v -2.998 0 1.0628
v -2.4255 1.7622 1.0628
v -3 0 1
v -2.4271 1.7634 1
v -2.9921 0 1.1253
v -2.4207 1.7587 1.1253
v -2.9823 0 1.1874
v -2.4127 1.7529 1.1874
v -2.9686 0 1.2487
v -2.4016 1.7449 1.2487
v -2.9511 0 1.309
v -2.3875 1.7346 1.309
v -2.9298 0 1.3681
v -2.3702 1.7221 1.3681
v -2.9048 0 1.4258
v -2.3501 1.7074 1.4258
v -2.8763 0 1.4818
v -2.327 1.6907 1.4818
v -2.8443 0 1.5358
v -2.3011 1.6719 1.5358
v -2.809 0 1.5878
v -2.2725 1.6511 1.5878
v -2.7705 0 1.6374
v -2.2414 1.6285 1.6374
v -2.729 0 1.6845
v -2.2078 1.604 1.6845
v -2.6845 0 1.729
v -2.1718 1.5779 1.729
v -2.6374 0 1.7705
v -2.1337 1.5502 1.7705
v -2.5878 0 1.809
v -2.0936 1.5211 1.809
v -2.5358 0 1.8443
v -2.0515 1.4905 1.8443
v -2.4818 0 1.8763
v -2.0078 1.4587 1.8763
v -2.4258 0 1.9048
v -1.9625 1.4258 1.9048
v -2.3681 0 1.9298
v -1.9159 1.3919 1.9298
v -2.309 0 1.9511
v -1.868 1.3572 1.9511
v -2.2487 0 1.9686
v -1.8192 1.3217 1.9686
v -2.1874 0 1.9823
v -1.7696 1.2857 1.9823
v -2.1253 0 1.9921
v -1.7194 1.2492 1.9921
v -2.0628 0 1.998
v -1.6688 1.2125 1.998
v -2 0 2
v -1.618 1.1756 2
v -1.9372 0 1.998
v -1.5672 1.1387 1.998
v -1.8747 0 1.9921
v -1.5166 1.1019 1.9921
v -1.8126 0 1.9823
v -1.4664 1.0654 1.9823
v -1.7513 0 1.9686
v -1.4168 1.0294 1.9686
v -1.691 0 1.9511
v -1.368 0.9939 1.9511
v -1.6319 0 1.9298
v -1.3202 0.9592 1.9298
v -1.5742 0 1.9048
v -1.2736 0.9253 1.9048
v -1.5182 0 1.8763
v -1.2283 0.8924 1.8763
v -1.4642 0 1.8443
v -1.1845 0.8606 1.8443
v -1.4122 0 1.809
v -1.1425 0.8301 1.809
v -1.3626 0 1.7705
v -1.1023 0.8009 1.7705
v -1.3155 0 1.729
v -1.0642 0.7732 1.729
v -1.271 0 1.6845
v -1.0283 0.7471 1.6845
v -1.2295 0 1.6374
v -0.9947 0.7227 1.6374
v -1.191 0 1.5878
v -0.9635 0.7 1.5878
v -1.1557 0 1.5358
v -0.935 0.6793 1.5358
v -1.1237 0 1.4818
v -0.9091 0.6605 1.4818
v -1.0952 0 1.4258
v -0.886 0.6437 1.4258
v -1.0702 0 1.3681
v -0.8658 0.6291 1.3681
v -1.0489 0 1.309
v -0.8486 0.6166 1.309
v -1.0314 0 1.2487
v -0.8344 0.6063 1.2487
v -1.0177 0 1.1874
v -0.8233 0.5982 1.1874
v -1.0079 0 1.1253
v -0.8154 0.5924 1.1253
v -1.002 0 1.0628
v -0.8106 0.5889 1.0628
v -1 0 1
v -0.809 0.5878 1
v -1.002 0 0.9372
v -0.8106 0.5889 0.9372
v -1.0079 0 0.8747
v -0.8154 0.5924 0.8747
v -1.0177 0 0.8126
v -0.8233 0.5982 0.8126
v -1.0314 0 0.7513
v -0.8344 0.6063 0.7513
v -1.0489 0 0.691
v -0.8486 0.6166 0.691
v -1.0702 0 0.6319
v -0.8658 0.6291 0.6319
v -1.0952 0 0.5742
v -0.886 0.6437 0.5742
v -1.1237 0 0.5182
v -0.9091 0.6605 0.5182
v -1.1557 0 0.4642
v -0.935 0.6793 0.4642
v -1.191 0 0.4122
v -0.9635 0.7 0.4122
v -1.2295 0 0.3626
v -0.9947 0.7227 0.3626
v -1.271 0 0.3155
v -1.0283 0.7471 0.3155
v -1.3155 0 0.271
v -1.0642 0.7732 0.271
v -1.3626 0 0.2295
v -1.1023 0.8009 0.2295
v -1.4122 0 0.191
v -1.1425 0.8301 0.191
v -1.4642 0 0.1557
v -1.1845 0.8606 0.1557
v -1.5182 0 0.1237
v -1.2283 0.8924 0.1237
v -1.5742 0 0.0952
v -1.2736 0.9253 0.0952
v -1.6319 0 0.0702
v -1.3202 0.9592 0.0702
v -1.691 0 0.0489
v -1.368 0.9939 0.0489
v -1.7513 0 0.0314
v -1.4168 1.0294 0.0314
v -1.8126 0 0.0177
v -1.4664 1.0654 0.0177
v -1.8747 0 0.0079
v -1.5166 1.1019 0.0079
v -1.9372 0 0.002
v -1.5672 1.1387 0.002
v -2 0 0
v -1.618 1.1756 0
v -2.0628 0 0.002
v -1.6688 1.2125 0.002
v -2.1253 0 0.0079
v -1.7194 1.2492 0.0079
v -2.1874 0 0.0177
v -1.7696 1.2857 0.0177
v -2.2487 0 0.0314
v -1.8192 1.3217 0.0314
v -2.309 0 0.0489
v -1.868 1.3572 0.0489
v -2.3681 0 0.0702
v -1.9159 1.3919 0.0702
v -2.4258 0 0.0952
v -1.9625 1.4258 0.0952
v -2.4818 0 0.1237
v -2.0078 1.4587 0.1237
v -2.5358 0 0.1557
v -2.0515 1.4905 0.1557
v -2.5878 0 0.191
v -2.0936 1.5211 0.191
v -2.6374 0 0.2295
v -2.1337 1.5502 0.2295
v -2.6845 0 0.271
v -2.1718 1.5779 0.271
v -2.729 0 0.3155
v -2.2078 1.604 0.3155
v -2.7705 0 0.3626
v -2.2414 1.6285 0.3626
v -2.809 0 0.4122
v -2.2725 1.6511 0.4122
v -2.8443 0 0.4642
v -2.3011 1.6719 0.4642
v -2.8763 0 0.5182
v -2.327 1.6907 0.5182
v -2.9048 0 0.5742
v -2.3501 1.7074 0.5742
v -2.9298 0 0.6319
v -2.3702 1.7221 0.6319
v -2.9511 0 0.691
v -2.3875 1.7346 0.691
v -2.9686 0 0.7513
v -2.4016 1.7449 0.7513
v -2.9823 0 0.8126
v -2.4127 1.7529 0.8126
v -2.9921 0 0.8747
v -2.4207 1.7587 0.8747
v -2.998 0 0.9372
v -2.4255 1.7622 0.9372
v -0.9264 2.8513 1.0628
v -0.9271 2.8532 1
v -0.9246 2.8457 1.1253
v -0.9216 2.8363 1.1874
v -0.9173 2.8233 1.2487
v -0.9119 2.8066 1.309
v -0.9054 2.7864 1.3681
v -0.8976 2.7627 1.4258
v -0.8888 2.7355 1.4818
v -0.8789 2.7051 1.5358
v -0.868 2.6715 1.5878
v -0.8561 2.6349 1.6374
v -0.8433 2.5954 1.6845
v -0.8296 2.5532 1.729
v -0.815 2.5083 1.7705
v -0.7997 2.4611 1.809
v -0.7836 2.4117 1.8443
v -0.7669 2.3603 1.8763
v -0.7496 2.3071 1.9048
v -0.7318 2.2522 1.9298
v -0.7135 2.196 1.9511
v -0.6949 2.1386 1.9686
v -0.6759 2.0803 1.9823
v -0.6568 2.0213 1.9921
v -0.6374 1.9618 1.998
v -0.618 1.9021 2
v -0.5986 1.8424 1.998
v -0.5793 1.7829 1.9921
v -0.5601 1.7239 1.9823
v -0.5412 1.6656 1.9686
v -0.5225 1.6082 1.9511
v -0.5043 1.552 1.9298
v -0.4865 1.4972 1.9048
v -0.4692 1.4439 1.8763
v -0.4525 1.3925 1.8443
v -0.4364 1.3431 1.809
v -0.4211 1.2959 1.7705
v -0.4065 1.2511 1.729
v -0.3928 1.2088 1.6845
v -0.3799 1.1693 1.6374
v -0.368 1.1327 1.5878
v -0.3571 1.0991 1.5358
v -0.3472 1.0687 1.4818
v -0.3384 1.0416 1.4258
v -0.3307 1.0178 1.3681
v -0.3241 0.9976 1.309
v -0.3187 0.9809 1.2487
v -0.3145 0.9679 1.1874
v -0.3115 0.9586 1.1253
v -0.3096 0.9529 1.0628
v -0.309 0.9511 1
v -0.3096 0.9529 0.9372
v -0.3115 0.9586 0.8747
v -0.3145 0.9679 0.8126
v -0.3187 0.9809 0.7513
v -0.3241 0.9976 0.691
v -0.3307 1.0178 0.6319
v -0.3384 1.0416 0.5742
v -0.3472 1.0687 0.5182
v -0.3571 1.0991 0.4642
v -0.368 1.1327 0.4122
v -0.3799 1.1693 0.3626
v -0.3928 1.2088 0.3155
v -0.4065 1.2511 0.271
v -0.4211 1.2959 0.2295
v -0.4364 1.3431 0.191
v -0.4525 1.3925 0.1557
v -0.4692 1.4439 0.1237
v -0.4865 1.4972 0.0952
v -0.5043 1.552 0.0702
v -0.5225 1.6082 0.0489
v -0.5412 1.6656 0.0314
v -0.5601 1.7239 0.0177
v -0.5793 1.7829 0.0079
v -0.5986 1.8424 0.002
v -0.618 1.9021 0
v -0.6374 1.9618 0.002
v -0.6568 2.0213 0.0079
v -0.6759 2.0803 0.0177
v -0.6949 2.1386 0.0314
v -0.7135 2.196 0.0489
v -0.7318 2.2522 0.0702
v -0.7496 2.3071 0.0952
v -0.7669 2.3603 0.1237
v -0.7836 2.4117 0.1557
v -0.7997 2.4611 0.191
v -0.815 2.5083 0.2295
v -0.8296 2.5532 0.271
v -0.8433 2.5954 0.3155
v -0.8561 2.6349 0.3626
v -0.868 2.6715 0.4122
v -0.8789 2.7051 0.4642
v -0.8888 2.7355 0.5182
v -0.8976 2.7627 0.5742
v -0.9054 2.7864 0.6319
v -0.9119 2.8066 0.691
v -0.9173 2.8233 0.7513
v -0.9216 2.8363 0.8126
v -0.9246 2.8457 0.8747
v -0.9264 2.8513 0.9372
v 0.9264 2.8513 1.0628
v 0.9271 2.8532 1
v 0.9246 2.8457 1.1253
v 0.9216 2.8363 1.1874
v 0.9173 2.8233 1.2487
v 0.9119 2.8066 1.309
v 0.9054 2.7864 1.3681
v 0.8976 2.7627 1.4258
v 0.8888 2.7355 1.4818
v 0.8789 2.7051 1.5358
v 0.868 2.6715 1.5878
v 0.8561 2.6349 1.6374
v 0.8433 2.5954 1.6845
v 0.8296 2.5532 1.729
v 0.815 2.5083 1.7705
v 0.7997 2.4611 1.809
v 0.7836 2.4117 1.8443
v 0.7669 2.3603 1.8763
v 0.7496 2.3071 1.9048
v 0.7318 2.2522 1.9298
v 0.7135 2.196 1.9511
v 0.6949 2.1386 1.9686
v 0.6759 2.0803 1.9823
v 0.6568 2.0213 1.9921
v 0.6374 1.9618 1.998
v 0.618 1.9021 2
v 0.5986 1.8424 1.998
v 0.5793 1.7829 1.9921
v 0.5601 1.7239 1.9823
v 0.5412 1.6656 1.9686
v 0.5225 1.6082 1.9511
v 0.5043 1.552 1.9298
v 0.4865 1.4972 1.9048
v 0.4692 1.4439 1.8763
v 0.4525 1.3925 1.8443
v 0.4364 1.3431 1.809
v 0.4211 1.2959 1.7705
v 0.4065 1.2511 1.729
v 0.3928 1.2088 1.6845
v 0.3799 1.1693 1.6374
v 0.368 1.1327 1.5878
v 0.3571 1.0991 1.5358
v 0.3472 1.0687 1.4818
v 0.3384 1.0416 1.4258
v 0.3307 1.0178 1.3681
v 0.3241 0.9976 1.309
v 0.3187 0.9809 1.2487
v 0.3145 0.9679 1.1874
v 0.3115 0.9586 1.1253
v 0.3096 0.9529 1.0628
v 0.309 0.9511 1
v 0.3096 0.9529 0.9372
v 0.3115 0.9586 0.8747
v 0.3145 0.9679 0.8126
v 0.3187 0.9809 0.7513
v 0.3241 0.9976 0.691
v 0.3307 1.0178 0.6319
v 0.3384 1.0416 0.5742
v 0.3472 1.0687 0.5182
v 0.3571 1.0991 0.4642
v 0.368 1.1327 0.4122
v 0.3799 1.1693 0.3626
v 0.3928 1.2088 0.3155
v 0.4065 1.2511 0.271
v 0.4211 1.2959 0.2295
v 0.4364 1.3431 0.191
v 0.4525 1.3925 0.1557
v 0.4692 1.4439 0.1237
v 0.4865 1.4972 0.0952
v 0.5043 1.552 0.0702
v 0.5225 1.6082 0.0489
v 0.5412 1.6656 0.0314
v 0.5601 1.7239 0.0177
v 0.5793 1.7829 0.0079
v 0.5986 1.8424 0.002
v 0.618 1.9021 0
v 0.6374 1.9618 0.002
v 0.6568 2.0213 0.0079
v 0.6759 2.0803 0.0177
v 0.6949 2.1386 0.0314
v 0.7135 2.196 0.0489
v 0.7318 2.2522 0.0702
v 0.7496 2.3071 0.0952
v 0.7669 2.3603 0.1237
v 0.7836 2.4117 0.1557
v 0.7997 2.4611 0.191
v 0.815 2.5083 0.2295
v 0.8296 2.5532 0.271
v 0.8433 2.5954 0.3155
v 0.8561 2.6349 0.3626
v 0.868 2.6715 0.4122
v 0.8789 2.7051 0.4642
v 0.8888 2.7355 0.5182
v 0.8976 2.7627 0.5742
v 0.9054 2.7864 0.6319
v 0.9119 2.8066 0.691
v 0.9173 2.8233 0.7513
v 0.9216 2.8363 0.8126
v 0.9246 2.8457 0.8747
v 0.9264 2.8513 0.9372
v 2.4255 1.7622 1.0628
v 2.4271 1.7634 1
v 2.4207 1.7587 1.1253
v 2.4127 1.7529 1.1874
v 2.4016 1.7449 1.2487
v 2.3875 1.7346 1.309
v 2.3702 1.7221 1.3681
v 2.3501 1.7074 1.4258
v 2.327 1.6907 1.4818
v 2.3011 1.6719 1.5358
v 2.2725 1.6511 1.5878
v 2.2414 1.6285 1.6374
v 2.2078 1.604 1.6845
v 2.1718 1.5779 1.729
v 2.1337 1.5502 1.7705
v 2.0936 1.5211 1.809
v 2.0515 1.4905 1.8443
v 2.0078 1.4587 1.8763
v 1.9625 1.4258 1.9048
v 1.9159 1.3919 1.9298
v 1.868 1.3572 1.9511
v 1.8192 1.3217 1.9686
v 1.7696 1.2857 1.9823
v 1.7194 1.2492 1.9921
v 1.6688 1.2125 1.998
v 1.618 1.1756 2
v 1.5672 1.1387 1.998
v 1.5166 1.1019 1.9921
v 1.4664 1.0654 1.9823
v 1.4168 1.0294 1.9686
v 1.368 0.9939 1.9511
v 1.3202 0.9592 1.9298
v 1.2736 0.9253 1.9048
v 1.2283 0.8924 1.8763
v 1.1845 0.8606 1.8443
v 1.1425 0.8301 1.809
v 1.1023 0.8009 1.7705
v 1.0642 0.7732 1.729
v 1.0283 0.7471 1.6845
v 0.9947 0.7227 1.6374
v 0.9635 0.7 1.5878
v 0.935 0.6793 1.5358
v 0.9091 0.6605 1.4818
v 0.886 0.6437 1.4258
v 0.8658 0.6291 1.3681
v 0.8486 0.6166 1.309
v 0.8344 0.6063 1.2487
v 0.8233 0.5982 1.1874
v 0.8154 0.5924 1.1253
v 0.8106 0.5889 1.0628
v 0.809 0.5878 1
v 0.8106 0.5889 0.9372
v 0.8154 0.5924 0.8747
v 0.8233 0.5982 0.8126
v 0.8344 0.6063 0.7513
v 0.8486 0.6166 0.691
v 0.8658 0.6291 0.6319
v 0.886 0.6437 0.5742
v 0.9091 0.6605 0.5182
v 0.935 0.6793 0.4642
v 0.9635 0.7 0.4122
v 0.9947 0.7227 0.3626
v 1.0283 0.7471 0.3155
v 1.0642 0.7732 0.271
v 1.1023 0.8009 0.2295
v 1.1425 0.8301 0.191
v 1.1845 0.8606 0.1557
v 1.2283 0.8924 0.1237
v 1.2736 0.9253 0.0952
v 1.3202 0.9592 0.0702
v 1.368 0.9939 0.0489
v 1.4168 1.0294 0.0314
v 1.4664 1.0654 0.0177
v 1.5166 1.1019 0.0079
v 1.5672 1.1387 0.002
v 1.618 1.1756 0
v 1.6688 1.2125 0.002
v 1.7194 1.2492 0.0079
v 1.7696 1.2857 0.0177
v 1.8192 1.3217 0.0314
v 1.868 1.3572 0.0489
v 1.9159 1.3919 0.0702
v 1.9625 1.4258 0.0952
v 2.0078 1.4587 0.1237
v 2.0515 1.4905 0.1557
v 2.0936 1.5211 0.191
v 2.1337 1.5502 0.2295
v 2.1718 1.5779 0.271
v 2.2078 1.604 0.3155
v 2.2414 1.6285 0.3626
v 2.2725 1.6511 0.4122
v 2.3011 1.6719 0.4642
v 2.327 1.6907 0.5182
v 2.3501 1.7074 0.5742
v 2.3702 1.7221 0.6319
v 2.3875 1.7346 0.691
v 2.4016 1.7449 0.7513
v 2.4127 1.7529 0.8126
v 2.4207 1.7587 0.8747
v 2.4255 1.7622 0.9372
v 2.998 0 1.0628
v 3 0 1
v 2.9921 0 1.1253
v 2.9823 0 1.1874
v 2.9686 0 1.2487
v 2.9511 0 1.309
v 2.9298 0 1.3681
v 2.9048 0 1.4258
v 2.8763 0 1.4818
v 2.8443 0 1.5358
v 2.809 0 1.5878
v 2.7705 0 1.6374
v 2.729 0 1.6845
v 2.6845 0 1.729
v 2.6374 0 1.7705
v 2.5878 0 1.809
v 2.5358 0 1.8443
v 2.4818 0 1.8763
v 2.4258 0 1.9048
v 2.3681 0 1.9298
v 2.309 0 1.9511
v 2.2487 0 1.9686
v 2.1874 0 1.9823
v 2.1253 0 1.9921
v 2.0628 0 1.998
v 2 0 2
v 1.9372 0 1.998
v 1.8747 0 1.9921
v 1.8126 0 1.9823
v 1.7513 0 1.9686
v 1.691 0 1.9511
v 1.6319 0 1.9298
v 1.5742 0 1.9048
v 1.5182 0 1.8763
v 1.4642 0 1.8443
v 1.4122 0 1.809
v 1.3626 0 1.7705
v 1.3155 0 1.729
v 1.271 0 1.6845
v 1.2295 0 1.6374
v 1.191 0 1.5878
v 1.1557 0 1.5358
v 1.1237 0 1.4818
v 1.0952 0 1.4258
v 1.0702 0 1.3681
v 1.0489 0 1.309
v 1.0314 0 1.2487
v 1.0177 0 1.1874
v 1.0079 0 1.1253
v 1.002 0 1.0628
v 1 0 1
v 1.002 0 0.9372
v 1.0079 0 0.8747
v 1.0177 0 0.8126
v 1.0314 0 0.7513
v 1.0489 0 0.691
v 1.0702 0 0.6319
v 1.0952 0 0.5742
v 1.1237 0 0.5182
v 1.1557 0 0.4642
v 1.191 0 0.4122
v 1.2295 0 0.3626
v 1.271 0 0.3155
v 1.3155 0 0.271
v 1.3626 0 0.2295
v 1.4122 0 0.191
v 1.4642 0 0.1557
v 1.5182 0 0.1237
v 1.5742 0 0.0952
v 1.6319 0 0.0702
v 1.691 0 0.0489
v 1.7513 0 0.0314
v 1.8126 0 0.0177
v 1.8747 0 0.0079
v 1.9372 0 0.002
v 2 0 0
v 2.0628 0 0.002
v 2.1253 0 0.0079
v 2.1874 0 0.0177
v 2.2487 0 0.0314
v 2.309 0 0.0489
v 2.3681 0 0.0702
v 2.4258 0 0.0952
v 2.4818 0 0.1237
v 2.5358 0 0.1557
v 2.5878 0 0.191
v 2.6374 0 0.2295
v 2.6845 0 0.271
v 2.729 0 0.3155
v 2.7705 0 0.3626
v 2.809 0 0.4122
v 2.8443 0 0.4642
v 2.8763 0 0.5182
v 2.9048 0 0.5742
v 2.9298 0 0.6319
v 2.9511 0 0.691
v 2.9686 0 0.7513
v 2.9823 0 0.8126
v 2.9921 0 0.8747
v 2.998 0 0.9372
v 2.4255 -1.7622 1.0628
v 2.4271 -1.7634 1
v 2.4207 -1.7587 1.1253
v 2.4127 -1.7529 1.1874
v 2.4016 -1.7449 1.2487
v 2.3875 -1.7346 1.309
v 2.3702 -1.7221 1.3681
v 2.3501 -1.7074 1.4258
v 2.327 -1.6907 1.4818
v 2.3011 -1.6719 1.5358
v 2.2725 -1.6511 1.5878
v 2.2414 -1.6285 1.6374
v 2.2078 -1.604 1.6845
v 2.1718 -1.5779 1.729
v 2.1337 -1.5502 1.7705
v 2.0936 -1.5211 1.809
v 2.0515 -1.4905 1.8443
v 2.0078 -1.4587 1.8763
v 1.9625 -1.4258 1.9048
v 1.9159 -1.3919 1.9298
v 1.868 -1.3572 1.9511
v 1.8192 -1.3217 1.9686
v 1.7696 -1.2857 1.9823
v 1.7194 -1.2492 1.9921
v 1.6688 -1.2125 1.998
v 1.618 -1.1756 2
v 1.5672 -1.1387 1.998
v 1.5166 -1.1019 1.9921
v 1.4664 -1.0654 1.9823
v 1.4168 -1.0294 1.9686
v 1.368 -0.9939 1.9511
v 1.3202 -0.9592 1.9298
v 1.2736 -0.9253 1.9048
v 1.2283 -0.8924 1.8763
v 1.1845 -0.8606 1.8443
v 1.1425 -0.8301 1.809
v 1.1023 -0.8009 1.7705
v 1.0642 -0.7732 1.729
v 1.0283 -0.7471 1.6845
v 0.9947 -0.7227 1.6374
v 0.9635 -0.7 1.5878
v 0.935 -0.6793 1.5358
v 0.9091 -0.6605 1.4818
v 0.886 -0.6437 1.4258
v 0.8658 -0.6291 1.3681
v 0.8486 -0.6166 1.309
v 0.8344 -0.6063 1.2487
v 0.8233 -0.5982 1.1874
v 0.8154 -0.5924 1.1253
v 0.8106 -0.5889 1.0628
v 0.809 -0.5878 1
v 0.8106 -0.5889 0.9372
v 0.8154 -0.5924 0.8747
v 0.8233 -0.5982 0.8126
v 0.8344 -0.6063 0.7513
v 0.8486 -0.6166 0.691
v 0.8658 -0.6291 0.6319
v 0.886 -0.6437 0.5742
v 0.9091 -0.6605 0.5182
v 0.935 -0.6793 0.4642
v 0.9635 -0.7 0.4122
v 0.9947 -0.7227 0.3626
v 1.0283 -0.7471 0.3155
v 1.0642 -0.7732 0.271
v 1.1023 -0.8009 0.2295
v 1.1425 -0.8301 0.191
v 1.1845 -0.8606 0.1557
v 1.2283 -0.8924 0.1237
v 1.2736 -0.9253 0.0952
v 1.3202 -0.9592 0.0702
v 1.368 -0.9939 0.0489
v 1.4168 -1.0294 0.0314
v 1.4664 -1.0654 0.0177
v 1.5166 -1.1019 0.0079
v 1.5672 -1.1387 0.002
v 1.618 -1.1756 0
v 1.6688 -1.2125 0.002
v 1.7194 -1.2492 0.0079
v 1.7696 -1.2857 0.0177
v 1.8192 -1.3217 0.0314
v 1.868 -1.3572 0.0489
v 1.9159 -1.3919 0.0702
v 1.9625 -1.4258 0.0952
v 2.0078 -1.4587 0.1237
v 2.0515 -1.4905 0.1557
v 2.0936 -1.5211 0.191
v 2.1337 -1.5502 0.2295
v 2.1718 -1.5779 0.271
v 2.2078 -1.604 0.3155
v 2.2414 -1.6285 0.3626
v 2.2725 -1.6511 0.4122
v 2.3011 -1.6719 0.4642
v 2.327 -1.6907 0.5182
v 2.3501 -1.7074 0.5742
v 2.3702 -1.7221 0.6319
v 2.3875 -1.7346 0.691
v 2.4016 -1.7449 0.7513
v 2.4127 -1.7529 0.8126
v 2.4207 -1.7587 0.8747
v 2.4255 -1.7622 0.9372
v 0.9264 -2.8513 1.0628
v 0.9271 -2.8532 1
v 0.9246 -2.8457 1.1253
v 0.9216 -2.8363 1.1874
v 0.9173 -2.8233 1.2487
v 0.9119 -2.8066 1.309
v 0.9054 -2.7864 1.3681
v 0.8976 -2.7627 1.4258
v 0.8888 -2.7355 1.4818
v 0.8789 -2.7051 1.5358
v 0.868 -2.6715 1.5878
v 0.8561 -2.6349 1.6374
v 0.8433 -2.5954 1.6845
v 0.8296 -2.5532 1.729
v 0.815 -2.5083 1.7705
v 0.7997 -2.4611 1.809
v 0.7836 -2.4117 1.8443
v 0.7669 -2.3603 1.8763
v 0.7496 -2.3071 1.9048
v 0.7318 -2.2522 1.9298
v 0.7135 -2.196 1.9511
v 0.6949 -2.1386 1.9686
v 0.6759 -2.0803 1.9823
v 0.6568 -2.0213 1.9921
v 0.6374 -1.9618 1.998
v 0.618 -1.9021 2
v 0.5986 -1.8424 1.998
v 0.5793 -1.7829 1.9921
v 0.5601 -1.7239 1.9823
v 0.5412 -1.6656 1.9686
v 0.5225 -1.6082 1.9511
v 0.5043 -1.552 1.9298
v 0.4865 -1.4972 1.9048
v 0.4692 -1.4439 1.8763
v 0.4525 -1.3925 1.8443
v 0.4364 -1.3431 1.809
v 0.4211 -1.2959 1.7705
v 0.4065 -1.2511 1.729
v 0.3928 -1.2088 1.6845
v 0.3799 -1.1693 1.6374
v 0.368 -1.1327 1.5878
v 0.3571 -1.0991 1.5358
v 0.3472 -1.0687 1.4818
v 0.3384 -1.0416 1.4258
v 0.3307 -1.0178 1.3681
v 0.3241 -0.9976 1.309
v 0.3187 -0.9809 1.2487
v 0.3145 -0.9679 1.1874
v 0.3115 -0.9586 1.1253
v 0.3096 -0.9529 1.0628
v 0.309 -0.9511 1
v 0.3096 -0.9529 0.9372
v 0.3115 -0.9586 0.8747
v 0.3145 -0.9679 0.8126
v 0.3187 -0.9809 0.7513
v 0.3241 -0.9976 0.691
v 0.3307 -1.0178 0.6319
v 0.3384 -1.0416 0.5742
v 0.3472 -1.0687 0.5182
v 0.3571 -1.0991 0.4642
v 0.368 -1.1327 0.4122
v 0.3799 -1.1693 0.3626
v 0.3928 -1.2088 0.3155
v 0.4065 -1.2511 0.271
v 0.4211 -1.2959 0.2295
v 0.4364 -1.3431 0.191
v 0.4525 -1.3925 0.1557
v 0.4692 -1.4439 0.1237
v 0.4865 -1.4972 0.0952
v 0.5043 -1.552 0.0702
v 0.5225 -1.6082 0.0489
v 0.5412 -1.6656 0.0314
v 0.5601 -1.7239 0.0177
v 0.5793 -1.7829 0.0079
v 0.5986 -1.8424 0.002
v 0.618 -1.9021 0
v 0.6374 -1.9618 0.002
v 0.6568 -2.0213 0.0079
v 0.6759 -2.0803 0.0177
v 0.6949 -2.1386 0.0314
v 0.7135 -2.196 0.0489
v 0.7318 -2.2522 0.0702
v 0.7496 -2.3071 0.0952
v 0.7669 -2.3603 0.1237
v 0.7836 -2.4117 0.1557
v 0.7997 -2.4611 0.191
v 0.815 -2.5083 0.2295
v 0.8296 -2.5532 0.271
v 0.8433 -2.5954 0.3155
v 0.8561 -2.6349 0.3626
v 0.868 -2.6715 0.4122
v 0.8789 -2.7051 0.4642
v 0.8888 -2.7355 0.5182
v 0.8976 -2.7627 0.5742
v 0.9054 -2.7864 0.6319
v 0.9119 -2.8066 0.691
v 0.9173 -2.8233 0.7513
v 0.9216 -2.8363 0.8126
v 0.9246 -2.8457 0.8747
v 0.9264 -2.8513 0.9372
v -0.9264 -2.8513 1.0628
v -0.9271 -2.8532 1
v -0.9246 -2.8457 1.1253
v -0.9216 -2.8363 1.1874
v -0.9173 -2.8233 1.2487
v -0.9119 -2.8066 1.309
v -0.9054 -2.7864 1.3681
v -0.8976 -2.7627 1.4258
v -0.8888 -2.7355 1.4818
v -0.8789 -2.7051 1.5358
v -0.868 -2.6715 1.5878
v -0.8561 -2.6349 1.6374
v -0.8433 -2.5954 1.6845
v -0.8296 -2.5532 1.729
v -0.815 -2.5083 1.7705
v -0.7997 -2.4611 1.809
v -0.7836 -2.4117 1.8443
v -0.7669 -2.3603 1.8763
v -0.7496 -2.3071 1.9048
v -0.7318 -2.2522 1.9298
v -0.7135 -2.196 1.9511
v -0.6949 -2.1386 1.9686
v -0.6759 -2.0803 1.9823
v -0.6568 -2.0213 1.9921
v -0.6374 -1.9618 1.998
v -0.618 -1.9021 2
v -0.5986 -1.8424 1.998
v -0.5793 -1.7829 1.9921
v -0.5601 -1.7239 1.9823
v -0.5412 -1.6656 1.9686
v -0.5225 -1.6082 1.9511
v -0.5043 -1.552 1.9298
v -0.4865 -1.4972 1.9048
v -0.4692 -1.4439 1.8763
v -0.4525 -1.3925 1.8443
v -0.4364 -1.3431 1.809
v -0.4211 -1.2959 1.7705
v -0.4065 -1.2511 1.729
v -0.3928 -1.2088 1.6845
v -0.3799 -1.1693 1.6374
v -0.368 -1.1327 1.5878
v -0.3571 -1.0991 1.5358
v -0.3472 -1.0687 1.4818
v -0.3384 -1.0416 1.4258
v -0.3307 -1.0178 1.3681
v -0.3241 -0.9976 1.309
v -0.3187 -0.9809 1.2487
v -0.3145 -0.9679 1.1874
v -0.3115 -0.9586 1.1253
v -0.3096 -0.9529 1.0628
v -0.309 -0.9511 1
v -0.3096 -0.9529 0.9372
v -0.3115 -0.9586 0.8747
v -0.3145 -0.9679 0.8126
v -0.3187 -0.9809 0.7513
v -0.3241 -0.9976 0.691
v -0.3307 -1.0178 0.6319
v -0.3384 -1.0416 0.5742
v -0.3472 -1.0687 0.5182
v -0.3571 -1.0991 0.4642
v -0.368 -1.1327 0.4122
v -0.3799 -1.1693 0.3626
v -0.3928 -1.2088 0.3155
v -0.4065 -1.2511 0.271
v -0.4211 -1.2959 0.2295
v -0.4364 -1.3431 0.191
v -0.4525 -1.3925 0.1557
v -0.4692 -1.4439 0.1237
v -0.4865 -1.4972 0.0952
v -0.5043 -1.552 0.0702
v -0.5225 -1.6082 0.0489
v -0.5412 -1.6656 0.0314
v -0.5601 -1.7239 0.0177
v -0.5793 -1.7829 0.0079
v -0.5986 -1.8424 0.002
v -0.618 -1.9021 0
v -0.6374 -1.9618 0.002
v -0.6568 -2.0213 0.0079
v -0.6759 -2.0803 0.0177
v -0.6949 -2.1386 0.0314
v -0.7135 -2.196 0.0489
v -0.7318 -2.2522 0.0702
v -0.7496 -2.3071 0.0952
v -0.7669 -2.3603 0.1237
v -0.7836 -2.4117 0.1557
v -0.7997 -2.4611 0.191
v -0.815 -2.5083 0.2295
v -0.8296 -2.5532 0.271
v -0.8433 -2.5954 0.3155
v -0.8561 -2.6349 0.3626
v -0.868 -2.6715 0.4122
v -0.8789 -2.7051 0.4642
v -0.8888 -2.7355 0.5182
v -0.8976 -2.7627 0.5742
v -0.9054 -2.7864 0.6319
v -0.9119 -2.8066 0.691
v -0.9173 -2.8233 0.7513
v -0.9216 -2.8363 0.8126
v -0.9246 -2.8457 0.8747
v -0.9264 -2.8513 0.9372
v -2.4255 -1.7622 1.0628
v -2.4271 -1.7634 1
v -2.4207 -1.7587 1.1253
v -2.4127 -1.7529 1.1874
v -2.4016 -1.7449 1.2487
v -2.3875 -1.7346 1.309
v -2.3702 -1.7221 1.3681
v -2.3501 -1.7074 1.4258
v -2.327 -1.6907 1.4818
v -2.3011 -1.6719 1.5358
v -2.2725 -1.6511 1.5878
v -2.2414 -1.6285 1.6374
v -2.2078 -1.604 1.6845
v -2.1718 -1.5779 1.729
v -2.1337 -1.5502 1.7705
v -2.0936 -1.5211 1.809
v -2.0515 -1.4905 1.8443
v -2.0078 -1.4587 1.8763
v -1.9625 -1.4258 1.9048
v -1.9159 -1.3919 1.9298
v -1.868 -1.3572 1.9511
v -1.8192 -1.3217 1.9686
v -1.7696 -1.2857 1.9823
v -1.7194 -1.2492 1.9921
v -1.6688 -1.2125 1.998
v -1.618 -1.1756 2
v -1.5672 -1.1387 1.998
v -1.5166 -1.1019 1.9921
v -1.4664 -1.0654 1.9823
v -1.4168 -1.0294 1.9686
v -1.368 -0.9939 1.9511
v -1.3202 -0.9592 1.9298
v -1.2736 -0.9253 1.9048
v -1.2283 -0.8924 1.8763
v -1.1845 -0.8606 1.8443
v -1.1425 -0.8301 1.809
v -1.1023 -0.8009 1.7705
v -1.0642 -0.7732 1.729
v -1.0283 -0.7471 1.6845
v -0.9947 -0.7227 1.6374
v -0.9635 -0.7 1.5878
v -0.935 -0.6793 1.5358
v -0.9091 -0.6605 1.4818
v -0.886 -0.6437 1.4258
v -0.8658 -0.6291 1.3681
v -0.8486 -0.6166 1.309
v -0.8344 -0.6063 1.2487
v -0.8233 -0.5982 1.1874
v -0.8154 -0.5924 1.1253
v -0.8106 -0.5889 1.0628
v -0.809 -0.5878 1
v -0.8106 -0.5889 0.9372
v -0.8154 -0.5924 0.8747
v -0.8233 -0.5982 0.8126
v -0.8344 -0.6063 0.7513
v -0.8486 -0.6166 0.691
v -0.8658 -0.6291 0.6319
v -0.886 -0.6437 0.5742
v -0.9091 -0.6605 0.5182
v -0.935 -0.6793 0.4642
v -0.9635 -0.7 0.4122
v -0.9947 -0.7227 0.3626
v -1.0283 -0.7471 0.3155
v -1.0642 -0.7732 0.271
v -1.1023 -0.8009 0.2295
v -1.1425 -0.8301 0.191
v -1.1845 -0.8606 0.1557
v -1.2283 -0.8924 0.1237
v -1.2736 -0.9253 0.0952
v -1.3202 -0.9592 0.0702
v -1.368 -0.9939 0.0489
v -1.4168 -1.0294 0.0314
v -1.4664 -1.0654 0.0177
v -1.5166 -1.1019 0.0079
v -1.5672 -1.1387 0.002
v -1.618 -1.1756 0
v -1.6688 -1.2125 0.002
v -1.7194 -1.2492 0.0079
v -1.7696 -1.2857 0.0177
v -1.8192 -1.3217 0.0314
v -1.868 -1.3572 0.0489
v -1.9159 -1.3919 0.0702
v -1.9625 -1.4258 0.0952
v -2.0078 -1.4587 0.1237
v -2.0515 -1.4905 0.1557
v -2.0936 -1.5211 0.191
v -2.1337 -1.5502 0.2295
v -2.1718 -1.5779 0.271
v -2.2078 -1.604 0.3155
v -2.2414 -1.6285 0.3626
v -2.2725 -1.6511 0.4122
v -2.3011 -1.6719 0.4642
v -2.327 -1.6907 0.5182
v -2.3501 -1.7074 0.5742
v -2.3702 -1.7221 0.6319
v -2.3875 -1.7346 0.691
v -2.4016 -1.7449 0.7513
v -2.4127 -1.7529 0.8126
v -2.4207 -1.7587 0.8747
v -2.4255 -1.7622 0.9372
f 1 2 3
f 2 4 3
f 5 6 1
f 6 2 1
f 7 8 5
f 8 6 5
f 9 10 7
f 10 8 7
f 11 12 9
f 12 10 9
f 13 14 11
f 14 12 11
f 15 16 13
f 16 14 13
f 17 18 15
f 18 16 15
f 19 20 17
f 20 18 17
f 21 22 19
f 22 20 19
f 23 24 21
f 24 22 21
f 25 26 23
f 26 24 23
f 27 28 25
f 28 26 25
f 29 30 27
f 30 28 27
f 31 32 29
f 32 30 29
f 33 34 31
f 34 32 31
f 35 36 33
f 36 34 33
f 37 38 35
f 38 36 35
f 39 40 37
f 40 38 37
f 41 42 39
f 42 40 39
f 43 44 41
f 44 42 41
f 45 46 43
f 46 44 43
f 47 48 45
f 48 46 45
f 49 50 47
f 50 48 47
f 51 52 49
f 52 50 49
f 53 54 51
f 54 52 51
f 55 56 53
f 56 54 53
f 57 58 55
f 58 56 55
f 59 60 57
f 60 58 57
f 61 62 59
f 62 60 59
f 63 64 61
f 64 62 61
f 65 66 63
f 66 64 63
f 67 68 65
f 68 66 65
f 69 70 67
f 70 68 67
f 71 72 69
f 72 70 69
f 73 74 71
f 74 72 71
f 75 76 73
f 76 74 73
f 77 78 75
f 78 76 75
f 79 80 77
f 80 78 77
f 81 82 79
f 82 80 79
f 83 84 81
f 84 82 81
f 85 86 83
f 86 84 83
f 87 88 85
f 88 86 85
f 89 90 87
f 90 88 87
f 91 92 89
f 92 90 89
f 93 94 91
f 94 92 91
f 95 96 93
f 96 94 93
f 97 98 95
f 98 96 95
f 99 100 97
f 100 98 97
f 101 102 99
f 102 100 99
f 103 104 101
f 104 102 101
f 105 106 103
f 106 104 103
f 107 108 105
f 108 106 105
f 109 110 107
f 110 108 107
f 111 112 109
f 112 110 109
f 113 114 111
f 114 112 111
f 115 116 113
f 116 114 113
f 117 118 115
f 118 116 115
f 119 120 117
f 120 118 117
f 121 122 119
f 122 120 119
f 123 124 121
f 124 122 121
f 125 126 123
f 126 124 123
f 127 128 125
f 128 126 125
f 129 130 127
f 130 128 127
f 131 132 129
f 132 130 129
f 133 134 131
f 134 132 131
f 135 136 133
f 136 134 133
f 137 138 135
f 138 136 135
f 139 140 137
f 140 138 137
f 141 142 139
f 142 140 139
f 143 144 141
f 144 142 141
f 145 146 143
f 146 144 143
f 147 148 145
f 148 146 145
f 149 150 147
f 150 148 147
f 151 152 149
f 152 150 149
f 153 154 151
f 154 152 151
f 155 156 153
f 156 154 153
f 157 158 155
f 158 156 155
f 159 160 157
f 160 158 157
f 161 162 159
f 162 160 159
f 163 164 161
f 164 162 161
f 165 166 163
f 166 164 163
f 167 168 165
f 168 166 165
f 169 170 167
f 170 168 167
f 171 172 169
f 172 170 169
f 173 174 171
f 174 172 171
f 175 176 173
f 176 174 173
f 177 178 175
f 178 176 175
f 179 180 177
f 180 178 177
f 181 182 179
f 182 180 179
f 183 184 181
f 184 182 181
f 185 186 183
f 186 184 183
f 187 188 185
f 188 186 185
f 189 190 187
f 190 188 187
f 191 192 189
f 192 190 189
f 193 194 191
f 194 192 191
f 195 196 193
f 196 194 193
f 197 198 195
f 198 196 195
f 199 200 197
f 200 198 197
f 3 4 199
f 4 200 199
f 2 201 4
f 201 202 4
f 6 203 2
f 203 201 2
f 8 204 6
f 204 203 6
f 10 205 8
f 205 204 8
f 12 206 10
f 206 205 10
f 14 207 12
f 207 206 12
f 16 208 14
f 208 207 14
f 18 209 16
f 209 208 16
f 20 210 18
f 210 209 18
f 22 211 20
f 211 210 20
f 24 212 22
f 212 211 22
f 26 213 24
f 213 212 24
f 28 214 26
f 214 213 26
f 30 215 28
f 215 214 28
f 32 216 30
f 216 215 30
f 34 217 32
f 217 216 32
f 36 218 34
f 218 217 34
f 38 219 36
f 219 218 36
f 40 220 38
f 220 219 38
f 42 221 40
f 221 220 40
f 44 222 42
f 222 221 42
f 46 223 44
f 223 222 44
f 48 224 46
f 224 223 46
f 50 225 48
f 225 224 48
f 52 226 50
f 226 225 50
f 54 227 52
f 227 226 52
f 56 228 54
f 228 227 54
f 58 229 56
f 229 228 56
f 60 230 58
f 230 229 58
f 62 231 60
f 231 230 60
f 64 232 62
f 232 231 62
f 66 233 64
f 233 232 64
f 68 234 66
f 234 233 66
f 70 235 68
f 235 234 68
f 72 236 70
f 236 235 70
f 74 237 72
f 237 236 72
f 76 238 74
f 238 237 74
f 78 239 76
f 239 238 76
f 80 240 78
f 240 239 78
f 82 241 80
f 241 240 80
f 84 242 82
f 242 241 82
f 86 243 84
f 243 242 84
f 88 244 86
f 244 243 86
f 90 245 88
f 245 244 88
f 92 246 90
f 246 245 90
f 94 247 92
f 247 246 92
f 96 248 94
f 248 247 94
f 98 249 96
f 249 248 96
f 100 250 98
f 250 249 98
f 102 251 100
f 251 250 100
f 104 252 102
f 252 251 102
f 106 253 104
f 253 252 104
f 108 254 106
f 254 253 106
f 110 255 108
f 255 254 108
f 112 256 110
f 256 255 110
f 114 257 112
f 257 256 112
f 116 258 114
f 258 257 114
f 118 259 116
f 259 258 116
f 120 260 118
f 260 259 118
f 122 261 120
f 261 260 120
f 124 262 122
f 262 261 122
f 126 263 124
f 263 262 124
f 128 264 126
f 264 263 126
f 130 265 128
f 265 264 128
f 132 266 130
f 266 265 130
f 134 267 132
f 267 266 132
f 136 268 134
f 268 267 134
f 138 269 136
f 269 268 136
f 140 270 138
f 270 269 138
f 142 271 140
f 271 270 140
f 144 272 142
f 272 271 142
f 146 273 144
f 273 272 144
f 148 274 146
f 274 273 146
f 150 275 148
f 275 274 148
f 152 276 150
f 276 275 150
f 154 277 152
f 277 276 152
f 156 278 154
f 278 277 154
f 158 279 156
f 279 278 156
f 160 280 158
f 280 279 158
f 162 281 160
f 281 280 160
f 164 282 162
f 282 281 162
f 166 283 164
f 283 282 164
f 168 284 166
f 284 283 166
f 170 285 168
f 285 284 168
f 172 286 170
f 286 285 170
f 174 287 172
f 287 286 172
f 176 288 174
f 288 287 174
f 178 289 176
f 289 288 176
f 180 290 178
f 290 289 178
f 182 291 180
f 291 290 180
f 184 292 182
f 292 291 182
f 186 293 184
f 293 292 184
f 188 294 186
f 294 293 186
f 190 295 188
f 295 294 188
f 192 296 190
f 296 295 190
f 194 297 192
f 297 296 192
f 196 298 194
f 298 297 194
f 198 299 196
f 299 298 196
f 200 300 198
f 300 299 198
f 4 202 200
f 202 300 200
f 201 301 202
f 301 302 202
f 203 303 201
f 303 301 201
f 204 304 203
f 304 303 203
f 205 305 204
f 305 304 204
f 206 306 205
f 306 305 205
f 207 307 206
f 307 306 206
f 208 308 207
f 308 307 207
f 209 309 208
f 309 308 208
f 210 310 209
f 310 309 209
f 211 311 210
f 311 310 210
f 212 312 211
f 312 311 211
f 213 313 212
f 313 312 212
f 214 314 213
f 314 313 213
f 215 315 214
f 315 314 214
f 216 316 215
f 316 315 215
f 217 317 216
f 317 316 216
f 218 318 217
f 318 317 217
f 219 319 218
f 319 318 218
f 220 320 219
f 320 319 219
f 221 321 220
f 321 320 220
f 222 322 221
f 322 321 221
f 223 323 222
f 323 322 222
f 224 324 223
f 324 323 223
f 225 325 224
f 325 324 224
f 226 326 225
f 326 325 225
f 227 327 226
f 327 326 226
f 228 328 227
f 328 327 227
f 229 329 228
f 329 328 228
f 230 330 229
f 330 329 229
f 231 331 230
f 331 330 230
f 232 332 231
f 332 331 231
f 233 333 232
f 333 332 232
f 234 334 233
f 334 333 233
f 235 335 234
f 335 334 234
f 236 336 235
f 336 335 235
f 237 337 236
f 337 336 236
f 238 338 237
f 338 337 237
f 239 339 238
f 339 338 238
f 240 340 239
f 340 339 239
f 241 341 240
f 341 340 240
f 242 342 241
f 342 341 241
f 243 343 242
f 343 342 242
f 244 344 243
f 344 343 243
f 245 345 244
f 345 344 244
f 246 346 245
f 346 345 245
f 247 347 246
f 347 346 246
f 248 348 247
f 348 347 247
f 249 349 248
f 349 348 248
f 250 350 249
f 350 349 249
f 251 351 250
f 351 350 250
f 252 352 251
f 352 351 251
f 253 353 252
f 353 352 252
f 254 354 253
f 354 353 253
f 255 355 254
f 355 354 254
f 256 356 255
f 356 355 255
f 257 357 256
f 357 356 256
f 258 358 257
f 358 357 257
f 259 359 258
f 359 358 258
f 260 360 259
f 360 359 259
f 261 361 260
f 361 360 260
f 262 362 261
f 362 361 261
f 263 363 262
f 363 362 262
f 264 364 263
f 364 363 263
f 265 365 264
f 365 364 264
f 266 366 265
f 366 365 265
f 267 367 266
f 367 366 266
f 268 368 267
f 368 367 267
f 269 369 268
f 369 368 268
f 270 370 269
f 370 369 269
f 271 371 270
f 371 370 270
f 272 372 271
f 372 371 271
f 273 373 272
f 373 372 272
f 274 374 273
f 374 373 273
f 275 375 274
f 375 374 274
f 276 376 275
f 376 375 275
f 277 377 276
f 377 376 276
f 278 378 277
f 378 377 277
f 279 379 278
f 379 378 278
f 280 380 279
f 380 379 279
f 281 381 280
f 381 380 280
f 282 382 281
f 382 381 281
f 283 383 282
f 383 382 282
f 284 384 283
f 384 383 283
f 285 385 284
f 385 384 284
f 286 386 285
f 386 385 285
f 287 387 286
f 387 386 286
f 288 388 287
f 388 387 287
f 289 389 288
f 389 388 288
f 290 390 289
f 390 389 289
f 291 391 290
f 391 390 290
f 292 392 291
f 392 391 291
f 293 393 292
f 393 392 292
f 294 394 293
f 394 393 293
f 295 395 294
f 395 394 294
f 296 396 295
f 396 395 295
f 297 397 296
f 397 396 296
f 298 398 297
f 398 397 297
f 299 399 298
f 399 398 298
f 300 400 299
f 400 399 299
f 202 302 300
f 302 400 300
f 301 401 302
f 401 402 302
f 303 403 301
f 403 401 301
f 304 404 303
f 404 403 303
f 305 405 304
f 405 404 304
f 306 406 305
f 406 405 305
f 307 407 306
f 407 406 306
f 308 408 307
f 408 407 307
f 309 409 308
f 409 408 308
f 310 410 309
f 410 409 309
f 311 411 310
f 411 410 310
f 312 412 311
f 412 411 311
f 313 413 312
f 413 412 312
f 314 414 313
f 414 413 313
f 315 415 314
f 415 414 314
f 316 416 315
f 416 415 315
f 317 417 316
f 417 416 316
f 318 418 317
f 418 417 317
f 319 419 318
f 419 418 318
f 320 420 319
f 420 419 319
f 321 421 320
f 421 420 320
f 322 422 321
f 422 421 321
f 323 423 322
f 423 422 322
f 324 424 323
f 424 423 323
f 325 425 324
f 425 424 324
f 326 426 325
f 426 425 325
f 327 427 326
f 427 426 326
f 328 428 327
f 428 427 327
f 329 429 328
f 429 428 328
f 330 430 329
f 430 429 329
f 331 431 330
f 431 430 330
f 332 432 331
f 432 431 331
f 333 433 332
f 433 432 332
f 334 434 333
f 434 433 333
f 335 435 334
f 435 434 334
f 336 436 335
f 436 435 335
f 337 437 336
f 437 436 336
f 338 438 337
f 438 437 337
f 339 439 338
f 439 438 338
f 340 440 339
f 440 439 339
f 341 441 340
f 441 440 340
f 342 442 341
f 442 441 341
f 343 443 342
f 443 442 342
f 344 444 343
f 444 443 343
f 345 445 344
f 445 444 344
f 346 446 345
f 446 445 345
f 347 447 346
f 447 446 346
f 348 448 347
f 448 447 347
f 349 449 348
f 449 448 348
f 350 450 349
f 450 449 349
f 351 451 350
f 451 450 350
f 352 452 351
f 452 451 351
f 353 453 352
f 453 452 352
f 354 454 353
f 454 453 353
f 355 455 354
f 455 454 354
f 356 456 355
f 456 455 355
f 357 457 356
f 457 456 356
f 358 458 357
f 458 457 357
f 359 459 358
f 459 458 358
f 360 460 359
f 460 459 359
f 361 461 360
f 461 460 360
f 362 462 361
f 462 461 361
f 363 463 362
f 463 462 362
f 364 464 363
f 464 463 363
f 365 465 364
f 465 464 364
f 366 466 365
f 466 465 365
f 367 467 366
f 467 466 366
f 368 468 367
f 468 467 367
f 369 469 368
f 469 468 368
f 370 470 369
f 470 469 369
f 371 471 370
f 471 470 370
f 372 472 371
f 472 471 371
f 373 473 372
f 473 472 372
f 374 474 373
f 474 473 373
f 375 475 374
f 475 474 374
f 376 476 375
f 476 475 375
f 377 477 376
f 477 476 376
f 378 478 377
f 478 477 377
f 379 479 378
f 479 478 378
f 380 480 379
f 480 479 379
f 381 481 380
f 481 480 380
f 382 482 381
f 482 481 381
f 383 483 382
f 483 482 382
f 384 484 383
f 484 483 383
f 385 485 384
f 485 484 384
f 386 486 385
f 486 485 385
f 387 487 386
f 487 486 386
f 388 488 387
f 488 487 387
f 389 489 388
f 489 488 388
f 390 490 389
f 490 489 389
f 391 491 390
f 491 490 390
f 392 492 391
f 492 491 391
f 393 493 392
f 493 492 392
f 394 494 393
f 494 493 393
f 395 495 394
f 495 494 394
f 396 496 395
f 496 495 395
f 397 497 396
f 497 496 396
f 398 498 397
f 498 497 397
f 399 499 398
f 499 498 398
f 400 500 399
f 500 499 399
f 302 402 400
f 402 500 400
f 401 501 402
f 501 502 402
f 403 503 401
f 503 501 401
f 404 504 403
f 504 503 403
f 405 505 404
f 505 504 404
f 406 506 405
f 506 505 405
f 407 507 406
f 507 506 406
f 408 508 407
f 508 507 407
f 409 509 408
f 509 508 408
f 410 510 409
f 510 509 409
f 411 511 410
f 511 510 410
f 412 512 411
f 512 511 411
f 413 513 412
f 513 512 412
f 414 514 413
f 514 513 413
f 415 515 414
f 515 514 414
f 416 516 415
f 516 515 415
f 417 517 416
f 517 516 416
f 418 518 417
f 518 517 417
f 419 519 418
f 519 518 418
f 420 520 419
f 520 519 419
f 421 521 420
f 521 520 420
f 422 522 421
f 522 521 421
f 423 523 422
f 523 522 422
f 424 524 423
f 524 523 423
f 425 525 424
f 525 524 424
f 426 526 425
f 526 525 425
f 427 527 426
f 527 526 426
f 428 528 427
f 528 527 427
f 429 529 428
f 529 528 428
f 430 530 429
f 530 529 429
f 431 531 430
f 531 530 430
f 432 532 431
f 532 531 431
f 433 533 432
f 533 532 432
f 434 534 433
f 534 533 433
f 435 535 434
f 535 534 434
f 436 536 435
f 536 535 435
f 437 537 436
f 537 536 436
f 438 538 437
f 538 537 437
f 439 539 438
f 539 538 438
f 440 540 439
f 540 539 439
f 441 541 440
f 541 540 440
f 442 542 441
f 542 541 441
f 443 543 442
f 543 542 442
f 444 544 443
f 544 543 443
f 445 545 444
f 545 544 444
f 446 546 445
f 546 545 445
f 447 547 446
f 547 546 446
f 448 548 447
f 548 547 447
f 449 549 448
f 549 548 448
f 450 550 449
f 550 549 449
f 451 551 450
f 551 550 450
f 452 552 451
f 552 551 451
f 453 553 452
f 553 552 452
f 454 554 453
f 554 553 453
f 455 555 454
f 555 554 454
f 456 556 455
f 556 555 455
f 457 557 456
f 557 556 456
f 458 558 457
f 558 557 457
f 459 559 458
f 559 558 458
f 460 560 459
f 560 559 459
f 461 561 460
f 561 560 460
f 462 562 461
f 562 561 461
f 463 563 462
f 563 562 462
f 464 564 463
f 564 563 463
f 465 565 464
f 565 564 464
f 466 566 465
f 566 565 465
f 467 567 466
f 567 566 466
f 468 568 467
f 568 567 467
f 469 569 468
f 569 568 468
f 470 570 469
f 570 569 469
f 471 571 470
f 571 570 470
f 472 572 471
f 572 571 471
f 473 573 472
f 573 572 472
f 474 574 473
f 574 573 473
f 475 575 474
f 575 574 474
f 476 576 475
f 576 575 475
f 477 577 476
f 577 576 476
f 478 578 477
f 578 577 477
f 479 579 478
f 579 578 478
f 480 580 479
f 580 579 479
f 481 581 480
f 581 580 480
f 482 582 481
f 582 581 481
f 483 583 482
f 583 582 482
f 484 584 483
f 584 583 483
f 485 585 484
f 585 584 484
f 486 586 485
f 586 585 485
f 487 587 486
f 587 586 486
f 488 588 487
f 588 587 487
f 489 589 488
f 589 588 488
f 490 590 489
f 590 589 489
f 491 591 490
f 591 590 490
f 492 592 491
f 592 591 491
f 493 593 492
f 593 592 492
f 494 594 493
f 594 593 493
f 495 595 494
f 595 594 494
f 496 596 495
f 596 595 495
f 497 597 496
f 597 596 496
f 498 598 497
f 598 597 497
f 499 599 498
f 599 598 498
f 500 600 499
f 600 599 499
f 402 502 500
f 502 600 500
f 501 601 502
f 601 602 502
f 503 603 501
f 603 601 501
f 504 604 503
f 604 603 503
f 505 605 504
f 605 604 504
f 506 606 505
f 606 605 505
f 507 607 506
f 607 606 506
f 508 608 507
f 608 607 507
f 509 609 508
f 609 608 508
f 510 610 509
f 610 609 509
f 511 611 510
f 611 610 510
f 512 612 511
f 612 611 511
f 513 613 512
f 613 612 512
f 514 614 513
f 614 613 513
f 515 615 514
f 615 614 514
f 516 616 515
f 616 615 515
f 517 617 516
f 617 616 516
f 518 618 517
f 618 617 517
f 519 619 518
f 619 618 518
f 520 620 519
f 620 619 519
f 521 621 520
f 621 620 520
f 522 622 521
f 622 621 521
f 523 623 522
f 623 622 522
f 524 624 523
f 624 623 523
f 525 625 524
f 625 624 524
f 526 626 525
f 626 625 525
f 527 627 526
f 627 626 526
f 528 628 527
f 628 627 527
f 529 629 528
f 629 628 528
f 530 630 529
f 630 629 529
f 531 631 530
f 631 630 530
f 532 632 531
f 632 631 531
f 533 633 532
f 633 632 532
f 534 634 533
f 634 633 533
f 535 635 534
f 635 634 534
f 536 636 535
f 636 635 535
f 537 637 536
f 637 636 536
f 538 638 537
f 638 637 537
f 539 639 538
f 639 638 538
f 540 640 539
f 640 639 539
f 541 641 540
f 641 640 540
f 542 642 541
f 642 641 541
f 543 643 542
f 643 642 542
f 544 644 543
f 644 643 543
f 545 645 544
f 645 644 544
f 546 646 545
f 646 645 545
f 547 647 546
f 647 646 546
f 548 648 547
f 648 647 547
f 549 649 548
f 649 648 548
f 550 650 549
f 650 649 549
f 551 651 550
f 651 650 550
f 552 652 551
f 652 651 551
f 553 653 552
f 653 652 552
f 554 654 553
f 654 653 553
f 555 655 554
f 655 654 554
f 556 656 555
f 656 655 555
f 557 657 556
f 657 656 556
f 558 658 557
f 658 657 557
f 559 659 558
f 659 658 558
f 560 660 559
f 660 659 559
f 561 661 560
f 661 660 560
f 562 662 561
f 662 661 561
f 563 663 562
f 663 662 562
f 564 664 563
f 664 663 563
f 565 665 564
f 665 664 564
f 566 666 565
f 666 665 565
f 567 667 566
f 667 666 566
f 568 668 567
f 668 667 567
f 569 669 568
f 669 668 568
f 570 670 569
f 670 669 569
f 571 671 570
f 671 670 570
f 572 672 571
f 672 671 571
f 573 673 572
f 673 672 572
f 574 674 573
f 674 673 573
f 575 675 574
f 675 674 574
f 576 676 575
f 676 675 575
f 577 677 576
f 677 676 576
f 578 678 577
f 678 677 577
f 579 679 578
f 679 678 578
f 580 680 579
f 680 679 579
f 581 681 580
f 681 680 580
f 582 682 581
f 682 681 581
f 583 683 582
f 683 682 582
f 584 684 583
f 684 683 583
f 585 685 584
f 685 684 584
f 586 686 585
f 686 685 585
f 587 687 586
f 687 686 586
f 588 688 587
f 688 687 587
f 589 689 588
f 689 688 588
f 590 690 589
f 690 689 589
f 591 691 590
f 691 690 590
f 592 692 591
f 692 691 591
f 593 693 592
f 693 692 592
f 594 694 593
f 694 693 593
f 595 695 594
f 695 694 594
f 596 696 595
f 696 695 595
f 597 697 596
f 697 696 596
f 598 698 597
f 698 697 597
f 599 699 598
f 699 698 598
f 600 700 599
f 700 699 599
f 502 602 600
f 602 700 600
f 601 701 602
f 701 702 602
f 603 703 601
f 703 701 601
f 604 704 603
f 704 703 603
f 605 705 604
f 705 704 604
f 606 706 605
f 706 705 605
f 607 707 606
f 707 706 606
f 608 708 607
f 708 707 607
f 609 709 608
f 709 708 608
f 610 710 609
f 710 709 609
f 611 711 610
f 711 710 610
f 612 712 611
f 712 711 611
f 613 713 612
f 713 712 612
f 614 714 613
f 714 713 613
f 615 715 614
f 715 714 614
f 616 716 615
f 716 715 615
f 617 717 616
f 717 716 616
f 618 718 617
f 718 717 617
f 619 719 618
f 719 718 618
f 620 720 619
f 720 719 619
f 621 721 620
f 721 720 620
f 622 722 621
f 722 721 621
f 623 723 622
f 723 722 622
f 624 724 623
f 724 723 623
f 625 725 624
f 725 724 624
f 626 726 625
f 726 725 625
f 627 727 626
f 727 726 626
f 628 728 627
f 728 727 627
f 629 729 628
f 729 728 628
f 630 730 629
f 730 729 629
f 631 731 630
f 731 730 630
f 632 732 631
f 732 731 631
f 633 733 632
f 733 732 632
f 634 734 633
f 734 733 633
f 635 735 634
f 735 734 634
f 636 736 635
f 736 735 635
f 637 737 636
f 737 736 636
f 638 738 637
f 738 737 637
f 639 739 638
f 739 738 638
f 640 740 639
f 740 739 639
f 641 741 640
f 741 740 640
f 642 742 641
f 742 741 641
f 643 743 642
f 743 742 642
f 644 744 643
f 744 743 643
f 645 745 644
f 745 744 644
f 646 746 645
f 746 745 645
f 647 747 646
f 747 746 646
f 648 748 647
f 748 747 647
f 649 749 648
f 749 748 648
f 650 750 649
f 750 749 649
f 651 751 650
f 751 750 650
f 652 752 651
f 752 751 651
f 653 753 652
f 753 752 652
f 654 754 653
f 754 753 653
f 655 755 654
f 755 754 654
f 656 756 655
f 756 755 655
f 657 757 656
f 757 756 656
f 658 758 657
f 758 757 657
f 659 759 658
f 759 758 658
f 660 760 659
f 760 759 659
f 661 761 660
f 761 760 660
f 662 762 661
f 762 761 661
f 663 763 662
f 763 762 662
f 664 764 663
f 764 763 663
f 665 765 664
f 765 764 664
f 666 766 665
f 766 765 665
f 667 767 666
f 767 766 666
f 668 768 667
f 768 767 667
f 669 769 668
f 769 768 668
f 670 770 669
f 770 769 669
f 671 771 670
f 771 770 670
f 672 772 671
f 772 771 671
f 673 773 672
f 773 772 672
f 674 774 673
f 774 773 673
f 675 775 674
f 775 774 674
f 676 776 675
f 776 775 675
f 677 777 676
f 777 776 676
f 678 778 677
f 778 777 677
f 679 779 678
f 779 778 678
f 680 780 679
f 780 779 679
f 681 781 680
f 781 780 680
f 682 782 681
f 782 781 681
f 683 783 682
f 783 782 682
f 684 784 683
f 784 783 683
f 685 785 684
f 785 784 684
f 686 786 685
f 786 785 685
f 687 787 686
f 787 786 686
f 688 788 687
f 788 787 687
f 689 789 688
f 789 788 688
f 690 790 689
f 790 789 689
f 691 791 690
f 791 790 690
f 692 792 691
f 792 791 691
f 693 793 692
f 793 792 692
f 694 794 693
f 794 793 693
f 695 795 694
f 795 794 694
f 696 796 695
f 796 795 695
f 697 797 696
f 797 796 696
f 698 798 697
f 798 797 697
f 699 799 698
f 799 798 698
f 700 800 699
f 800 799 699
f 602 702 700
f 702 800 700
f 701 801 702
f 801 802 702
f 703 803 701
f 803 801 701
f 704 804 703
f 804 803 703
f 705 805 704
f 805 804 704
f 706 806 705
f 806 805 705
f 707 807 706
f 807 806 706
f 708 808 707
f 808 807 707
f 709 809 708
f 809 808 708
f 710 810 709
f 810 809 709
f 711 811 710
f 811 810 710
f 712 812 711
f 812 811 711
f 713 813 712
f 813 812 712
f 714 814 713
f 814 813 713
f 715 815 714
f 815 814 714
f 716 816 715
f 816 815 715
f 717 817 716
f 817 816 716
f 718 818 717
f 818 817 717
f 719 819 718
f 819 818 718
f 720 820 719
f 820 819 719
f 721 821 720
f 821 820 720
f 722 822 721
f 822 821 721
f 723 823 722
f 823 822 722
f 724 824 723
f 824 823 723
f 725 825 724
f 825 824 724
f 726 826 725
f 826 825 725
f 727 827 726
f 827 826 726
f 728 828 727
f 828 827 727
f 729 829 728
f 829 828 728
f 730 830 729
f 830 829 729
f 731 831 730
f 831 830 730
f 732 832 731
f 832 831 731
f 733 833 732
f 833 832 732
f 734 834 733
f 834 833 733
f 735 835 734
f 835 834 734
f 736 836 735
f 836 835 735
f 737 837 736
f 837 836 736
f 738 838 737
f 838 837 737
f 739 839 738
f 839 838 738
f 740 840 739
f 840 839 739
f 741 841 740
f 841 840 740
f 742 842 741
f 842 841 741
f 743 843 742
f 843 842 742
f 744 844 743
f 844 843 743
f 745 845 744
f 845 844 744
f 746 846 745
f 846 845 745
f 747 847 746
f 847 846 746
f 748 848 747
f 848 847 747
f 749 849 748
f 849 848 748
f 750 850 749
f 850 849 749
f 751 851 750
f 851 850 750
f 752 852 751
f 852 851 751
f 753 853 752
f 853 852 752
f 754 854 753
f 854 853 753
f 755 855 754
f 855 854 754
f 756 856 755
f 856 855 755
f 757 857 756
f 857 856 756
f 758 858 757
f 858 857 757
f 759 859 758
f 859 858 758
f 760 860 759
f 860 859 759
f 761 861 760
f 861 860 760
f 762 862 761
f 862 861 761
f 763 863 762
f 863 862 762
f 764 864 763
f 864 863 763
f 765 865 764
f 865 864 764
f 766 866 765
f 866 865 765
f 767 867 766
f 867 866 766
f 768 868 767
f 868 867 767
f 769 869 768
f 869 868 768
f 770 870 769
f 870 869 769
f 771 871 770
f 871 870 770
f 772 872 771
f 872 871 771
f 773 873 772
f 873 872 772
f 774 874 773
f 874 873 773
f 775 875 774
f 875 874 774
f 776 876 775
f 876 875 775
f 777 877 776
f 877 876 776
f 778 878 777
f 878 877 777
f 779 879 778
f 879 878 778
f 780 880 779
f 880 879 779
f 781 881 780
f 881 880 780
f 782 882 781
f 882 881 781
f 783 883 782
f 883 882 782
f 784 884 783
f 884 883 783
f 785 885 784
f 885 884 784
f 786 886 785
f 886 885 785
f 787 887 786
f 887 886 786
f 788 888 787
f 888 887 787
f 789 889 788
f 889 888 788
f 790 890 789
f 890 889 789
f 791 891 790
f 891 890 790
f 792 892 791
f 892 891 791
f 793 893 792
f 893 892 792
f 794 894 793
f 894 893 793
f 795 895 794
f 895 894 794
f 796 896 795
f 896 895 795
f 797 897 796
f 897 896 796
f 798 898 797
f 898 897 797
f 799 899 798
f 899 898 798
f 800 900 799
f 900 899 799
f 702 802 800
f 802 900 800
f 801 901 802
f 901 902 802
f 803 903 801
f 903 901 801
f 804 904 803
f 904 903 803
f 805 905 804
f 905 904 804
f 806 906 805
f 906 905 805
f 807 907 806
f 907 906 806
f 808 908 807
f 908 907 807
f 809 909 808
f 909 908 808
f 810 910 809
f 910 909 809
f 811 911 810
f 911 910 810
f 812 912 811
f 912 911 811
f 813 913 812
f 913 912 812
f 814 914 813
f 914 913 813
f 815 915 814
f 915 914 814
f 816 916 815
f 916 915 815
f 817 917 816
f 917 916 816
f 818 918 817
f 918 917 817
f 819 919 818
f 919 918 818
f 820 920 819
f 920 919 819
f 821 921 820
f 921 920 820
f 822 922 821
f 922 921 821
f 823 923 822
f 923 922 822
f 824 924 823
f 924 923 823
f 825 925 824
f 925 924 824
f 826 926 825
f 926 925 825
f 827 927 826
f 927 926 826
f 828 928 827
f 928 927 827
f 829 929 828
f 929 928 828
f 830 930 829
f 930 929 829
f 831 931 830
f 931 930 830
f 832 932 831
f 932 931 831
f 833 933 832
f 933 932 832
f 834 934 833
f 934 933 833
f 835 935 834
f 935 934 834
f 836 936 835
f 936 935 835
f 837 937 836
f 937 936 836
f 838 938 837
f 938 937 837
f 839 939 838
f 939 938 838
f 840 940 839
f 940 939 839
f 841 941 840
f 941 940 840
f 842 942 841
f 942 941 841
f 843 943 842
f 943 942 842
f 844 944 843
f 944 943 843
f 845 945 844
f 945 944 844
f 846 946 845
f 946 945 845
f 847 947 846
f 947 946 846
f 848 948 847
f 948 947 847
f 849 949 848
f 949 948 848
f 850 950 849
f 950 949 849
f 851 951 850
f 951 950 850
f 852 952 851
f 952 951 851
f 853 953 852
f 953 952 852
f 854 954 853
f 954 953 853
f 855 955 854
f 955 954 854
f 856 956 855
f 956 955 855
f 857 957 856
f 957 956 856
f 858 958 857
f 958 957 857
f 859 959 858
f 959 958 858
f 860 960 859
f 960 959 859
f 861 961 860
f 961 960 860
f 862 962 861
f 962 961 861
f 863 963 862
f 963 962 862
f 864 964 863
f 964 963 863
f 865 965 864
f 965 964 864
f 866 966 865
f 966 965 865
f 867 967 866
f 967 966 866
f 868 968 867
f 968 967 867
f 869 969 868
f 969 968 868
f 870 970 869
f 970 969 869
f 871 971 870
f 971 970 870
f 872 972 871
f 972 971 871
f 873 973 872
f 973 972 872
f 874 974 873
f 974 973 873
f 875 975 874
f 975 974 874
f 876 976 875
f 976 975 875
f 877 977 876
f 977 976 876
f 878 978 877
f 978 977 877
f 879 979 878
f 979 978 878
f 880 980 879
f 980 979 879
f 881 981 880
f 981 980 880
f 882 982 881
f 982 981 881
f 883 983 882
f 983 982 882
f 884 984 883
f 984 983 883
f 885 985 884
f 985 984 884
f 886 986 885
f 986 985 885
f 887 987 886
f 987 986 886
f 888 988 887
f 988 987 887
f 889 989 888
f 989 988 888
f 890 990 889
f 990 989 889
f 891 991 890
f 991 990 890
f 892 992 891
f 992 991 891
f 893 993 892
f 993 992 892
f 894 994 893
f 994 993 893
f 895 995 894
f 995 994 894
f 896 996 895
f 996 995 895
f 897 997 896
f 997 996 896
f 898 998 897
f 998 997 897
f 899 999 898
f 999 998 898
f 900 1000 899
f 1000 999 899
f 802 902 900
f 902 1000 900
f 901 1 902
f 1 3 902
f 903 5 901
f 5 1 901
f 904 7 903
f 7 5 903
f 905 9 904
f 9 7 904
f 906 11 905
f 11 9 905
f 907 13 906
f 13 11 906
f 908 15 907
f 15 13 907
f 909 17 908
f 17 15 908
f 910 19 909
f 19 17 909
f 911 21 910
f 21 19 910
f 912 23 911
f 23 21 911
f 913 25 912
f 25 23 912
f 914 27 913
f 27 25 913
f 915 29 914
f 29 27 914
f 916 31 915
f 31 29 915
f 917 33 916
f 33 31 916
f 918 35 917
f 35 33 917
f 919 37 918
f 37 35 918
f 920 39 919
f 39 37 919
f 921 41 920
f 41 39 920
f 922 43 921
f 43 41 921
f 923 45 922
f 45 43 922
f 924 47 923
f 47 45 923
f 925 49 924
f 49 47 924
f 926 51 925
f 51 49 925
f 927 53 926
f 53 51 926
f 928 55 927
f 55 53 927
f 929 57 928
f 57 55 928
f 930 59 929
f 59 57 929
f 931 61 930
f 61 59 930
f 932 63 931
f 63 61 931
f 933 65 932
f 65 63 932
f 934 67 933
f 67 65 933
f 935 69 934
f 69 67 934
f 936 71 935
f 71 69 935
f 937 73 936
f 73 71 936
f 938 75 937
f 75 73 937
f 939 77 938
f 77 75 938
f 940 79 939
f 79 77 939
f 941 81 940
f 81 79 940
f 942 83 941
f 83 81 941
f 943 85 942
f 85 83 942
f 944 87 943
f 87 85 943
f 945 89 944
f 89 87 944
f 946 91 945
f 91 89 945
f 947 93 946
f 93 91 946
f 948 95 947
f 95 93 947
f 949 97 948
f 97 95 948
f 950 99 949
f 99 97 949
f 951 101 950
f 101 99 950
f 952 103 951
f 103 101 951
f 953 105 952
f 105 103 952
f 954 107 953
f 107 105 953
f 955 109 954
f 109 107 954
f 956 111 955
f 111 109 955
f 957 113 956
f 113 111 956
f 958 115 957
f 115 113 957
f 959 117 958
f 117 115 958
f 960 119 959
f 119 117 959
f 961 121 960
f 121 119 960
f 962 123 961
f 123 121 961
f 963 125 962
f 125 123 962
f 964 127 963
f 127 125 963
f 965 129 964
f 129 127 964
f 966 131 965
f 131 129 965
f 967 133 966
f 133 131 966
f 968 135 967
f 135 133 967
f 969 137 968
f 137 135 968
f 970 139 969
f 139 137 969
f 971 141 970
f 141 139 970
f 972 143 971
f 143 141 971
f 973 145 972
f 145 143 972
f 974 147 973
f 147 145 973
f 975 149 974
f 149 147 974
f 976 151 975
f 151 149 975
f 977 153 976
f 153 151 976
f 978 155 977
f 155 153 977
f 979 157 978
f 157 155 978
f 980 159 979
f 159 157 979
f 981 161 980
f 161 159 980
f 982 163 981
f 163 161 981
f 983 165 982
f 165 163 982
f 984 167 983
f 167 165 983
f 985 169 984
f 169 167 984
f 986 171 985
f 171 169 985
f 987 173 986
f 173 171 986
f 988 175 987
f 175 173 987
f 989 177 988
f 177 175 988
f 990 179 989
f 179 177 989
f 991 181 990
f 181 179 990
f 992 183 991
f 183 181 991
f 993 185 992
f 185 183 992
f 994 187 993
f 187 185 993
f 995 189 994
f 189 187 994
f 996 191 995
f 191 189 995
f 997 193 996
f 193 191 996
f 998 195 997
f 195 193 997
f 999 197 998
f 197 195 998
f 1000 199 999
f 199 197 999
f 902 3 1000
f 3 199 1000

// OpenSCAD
translate([0,0,0]) 
rotate_extrude()
translate([2,1,0]) circle(r=1,$fn=100);
